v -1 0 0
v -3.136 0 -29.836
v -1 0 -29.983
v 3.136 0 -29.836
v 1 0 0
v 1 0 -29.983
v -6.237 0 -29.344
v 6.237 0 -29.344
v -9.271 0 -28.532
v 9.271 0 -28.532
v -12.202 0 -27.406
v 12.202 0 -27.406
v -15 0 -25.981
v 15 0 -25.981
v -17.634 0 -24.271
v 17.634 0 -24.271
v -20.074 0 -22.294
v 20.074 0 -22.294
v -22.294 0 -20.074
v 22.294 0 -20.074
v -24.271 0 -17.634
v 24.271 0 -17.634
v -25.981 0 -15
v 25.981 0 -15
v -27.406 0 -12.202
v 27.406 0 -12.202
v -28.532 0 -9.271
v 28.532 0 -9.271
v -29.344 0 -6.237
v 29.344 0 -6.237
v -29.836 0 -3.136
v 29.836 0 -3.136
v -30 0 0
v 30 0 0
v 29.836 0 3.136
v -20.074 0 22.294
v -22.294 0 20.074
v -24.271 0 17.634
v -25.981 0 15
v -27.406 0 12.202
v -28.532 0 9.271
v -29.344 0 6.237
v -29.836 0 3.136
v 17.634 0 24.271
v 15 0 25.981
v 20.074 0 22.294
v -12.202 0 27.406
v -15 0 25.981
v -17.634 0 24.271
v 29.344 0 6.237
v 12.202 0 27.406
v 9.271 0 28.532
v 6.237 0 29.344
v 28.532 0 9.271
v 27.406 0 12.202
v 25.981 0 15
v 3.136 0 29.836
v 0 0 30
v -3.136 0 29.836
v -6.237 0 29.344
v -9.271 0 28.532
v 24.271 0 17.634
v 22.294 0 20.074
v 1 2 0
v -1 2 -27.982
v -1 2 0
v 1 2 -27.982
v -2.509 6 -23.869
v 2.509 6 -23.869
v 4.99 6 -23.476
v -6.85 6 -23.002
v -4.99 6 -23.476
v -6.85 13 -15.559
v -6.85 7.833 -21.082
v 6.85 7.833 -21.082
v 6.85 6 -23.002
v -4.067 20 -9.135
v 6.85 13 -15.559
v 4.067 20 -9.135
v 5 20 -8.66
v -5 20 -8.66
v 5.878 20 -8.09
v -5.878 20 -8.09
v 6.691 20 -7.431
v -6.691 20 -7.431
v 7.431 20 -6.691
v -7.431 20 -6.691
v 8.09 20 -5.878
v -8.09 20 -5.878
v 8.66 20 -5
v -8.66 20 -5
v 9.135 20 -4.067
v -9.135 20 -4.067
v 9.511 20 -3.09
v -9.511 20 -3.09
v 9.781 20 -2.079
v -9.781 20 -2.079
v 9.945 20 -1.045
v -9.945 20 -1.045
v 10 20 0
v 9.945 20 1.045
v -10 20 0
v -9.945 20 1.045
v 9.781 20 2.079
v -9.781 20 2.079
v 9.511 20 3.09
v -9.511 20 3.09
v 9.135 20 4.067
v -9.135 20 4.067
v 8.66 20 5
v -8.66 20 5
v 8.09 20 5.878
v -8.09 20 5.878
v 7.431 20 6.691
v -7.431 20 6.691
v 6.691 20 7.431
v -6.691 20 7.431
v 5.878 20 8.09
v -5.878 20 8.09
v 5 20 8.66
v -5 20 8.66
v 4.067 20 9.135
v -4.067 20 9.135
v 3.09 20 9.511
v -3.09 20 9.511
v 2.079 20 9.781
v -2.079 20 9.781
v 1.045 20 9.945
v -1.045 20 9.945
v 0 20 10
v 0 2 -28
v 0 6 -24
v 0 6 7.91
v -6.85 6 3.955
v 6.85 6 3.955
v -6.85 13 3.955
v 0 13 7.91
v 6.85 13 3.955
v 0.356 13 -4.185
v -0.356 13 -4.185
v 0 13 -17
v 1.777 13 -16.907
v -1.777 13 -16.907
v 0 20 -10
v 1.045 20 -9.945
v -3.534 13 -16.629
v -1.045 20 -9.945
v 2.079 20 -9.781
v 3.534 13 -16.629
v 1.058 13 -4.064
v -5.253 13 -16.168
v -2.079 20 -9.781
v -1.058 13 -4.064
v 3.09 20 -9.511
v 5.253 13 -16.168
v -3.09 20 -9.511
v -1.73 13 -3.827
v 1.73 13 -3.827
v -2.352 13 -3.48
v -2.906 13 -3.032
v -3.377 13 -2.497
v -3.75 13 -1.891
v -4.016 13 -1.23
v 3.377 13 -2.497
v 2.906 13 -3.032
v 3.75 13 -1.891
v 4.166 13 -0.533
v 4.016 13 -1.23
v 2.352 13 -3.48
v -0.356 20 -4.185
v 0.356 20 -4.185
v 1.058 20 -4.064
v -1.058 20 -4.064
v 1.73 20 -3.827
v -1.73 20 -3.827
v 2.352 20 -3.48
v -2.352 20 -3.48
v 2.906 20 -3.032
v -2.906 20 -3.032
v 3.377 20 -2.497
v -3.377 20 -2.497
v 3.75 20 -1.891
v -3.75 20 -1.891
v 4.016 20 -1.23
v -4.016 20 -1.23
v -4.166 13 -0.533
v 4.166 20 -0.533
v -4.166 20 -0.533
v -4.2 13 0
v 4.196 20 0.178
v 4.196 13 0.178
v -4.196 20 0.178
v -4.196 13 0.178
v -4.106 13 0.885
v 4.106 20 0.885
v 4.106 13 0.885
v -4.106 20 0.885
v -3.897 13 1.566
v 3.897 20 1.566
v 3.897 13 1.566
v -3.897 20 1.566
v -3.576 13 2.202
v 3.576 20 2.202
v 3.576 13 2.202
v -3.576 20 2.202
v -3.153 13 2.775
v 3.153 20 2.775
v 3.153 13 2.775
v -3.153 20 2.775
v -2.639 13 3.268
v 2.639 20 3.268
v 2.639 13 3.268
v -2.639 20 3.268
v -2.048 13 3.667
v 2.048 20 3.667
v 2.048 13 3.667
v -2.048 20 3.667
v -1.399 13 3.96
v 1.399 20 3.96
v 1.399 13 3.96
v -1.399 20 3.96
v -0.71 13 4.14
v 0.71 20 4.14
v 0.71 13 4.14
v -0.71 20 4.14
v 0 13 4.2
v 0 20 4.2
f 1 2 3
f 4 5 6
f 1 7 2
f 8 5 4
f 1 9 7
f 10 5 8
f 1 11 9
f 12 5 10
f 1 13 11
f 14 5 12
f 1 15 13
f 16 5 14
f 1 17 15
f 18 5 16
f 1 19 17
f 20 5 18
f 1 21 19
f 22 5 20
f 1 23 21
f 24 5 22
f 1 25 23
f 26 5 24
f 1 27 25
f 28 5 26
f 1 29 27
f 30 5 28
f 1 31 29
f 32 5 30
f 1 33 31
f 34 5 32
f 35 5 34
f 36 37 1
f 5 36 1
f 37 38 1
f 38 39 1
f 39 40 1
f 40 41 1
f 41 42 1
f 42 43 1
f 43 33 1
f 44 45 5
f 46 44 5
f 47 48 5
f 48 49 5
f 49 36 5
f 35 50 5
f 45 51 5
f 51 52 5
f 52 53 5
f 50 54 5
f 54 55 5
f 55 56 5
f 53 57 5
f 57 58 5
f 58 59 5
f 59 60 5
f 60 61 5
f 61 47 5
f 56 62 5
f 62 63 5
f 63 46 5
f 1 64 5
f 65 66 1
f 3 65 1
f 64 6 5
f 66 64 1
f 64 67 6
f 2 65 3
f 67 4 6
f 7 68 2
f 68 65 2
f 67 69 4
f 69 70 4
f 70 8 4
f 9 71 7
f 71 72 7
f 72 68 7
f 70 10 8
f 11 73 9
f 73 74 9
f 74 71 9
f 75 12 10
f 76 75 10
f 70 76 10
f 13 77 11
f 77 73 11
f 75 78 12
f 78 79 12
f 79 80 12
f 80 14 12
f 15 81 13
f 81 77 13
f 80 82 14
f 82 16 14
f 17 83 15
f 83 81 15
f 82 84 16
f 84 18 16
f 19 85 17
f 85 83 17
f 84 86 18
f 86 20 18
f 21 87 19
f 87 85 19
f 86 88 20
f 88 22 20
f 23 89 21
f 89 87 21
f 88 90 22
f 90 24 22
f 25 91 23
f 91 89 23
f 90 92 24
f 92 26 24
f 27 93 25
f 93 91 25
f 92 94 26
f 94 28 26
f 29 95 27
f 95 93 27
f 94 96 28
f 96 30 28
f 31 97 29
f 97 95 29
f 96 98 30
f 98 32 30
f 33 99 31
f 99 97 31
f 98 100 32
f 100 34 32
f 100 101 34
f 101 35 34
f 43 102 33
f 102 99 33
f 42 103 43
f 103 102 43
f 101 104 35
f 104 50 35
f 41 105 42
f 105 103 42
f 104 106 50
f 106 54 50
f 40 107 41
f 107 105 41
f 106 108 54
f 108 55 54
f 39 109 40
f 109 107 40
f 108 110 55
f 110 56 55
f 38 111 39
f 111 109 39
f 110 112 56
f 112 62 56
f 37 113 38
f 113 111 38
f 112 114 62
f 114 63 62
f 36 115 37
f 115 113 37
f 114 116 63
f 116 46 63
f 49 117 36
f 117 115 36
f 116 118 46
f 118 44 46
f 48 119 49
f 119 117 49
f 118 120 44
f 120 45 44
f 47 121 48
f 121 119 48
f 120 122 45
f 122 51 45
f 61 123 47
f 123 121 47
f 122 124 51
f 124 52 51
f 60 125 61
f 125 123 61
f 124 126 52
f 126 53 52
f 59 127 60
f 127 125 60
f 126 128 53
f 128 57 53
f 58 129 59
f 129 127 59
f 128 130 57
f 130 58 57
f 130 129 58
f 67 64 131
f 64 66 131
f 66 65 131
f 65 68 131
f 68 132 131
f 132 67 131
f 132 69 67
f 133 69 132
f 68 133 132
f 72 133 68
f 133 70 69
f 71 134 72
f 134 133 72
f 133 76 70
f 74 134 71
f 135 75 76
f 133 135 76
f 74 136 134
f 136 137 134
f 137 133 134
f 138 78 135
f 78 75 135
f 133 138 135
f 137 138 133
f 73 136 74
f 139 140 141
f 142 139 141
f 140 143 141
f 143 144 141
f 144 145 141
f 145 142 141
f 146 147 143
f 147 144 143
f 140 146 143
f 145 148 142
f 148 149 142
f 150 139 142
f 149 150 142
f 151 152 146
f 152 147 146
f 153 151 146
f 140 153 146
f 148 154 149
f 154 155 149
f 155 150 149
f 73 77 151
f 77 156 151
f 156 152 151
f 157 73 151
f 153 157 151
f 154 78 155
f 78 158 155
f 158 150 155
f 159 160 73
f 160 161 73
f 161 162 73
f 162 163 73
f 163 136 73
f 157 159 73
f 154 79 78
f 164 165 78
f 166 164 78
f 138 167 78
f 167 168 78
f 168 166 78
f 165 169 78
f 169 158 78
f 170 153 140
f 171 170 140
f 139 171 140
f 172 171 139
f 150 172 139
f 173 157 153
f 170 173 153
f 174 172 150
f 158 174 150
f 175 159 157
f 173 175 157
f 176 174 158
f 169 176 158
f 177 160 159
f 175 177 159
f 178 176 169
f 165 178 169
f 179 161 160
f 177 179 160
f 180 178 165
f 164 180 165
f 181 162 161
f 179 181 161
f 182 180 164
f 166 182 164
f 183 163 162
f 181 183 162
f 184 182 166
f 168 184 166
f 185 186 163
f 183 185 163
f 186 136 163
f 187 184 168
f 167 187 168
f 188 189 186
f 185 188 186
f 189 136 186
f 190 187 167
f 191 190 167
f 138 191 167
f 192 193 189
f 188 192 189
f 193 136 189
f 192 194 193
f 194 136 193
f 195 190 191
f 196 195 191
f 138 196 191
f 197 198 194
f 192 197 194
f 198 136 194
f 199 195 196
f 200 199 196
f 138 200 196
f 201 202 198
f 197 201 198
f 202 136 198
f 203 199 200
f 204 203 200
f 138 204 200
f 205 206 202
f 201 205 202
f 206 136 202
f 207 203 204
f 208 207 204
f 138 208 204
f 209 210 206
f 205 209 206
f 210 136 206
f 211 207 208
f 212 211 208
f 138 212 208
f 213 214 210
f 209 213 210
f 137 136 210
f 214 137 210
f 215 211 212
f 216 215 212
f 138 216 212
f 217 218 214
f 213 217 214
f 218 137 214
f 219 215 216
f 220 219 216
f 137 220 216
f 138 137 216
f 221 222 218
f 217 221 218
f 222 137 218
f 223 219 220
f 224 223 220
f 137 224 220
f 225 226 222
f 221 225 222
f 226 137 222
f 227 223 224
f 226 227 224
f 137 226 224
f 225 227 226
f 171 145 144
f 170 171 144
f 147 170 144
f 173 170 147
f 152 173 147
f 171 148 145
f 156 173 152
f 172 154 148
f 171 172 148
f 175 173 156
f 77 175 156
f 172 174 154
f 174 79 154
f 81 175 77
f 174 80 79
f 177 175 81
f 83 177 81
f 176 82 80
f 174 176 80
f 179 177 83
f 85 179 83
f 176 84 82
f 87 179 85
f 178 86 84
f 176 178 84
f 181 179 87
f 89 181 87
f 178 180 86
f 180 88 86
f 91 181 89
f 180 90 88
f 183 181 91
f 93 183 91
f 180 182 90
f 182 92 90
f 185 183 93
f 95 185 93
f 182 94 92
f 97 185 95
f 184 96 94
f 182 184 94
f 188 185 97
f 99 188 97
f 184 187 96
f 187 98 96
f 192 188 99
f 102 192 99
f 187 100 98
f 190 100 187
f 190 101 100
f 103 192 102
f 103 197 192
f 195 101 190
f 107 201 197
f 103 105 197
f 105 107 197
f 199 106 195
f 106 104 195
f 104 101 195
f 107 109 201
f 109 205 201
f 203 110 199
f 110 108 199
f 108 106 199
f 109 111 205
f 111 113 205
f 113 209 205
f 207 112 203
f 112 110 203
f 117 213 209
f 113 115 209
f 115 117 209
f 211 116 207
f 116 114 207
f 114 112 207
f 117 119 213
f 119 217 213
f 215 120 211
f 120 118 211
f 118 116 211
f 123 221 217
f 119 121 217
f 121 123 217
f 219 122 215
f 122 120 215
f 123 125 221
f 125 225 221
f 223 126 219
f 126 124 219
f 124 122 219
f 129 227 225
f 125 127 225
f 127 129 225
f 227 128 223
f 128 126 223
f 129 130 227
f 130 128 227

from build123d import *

# Parameters (mm, degrees)
SKETCH3_R           = 4.2
CUT_EXTRUDE1_DEPTH  = 10
SKETCH6_W           = 13.7
SKETCH6_H           = 7
CUT_EXTRUDE8_DEPTH  = 59
CUT_EXTRUDE9_DEPTH  = 7
SKETCH8_W           = 2
SKETCH8_H           = 4
CUT_EXTRUDE10_DEPTH = 61


with BuildPart() as part:
    # Sketch2 → Revolve1 (revolve)
    with BuildSketch(Plane.XY, mode=Mode.PRIVATE) as revolve1_sk:
        Polygon((0, 20), (10, 20), (30, 0), (0, 0), align=None)
    revolve(revolve1_sk.sketch.rotate(Axis((0, 0, 0), (0, 1, 0)), 90), axis=Axis((0, 0, 0), (0, 1, 0)))

    # Sketch3 → Cut-Extrude1 (cut)
    with BuildSketch(Plane(origin=(0, 20, 0), x_dir=(1, 0, 0), z_dir=(0, 1, 0))):
        with Locations(Location((0, 0, 0), (0, 0, 270))):
            Circle(SKETCH3_R)
    extrude(amount=-CUT_EXTRUDE1_DEPTH, mode=Mode.SUBTRACT)

    # Sketch6 → Cut-Extrude8 (cut)
    with BuildSketch(Plane.XY):
        with Locations((0, 9.5)):
            Rectangle(SKETCH6_W, SKETCH6_H)
    extrude(amount=-CUT_EXTRUDE8_DEPTH, mode=Mode.SUBTRACT)

    # Sketch7 → Cut-Extrude9 (cut)
    with BuildSketch(Plane(origin=(0, 6, 0), x_dir=(1, 0, 0), z_dir=(0, 1, 0))):
        Polygon((6.85, -3.954849344), (6.85, 3.954849344), (0, 7.909698688), (-6.85, 3.954849344), (-6.85, -3.954849344), (0, -7.909698688), align=None)
    extrude(amount=CUT_EXTRUDE9_DEPTH, mode=Mode.SUBTRACT)

    # Sketch8 → Cut-Extrude10 (cut)
    with BuildSketch(Plane.XY):
        Rectangle(SKETCH8_W, SKETCH8_H)
    extrude(amount=-CUT_EXTRUDE10_DEPTH, mode=Mode.SUBTRACT)


solid = part.part
